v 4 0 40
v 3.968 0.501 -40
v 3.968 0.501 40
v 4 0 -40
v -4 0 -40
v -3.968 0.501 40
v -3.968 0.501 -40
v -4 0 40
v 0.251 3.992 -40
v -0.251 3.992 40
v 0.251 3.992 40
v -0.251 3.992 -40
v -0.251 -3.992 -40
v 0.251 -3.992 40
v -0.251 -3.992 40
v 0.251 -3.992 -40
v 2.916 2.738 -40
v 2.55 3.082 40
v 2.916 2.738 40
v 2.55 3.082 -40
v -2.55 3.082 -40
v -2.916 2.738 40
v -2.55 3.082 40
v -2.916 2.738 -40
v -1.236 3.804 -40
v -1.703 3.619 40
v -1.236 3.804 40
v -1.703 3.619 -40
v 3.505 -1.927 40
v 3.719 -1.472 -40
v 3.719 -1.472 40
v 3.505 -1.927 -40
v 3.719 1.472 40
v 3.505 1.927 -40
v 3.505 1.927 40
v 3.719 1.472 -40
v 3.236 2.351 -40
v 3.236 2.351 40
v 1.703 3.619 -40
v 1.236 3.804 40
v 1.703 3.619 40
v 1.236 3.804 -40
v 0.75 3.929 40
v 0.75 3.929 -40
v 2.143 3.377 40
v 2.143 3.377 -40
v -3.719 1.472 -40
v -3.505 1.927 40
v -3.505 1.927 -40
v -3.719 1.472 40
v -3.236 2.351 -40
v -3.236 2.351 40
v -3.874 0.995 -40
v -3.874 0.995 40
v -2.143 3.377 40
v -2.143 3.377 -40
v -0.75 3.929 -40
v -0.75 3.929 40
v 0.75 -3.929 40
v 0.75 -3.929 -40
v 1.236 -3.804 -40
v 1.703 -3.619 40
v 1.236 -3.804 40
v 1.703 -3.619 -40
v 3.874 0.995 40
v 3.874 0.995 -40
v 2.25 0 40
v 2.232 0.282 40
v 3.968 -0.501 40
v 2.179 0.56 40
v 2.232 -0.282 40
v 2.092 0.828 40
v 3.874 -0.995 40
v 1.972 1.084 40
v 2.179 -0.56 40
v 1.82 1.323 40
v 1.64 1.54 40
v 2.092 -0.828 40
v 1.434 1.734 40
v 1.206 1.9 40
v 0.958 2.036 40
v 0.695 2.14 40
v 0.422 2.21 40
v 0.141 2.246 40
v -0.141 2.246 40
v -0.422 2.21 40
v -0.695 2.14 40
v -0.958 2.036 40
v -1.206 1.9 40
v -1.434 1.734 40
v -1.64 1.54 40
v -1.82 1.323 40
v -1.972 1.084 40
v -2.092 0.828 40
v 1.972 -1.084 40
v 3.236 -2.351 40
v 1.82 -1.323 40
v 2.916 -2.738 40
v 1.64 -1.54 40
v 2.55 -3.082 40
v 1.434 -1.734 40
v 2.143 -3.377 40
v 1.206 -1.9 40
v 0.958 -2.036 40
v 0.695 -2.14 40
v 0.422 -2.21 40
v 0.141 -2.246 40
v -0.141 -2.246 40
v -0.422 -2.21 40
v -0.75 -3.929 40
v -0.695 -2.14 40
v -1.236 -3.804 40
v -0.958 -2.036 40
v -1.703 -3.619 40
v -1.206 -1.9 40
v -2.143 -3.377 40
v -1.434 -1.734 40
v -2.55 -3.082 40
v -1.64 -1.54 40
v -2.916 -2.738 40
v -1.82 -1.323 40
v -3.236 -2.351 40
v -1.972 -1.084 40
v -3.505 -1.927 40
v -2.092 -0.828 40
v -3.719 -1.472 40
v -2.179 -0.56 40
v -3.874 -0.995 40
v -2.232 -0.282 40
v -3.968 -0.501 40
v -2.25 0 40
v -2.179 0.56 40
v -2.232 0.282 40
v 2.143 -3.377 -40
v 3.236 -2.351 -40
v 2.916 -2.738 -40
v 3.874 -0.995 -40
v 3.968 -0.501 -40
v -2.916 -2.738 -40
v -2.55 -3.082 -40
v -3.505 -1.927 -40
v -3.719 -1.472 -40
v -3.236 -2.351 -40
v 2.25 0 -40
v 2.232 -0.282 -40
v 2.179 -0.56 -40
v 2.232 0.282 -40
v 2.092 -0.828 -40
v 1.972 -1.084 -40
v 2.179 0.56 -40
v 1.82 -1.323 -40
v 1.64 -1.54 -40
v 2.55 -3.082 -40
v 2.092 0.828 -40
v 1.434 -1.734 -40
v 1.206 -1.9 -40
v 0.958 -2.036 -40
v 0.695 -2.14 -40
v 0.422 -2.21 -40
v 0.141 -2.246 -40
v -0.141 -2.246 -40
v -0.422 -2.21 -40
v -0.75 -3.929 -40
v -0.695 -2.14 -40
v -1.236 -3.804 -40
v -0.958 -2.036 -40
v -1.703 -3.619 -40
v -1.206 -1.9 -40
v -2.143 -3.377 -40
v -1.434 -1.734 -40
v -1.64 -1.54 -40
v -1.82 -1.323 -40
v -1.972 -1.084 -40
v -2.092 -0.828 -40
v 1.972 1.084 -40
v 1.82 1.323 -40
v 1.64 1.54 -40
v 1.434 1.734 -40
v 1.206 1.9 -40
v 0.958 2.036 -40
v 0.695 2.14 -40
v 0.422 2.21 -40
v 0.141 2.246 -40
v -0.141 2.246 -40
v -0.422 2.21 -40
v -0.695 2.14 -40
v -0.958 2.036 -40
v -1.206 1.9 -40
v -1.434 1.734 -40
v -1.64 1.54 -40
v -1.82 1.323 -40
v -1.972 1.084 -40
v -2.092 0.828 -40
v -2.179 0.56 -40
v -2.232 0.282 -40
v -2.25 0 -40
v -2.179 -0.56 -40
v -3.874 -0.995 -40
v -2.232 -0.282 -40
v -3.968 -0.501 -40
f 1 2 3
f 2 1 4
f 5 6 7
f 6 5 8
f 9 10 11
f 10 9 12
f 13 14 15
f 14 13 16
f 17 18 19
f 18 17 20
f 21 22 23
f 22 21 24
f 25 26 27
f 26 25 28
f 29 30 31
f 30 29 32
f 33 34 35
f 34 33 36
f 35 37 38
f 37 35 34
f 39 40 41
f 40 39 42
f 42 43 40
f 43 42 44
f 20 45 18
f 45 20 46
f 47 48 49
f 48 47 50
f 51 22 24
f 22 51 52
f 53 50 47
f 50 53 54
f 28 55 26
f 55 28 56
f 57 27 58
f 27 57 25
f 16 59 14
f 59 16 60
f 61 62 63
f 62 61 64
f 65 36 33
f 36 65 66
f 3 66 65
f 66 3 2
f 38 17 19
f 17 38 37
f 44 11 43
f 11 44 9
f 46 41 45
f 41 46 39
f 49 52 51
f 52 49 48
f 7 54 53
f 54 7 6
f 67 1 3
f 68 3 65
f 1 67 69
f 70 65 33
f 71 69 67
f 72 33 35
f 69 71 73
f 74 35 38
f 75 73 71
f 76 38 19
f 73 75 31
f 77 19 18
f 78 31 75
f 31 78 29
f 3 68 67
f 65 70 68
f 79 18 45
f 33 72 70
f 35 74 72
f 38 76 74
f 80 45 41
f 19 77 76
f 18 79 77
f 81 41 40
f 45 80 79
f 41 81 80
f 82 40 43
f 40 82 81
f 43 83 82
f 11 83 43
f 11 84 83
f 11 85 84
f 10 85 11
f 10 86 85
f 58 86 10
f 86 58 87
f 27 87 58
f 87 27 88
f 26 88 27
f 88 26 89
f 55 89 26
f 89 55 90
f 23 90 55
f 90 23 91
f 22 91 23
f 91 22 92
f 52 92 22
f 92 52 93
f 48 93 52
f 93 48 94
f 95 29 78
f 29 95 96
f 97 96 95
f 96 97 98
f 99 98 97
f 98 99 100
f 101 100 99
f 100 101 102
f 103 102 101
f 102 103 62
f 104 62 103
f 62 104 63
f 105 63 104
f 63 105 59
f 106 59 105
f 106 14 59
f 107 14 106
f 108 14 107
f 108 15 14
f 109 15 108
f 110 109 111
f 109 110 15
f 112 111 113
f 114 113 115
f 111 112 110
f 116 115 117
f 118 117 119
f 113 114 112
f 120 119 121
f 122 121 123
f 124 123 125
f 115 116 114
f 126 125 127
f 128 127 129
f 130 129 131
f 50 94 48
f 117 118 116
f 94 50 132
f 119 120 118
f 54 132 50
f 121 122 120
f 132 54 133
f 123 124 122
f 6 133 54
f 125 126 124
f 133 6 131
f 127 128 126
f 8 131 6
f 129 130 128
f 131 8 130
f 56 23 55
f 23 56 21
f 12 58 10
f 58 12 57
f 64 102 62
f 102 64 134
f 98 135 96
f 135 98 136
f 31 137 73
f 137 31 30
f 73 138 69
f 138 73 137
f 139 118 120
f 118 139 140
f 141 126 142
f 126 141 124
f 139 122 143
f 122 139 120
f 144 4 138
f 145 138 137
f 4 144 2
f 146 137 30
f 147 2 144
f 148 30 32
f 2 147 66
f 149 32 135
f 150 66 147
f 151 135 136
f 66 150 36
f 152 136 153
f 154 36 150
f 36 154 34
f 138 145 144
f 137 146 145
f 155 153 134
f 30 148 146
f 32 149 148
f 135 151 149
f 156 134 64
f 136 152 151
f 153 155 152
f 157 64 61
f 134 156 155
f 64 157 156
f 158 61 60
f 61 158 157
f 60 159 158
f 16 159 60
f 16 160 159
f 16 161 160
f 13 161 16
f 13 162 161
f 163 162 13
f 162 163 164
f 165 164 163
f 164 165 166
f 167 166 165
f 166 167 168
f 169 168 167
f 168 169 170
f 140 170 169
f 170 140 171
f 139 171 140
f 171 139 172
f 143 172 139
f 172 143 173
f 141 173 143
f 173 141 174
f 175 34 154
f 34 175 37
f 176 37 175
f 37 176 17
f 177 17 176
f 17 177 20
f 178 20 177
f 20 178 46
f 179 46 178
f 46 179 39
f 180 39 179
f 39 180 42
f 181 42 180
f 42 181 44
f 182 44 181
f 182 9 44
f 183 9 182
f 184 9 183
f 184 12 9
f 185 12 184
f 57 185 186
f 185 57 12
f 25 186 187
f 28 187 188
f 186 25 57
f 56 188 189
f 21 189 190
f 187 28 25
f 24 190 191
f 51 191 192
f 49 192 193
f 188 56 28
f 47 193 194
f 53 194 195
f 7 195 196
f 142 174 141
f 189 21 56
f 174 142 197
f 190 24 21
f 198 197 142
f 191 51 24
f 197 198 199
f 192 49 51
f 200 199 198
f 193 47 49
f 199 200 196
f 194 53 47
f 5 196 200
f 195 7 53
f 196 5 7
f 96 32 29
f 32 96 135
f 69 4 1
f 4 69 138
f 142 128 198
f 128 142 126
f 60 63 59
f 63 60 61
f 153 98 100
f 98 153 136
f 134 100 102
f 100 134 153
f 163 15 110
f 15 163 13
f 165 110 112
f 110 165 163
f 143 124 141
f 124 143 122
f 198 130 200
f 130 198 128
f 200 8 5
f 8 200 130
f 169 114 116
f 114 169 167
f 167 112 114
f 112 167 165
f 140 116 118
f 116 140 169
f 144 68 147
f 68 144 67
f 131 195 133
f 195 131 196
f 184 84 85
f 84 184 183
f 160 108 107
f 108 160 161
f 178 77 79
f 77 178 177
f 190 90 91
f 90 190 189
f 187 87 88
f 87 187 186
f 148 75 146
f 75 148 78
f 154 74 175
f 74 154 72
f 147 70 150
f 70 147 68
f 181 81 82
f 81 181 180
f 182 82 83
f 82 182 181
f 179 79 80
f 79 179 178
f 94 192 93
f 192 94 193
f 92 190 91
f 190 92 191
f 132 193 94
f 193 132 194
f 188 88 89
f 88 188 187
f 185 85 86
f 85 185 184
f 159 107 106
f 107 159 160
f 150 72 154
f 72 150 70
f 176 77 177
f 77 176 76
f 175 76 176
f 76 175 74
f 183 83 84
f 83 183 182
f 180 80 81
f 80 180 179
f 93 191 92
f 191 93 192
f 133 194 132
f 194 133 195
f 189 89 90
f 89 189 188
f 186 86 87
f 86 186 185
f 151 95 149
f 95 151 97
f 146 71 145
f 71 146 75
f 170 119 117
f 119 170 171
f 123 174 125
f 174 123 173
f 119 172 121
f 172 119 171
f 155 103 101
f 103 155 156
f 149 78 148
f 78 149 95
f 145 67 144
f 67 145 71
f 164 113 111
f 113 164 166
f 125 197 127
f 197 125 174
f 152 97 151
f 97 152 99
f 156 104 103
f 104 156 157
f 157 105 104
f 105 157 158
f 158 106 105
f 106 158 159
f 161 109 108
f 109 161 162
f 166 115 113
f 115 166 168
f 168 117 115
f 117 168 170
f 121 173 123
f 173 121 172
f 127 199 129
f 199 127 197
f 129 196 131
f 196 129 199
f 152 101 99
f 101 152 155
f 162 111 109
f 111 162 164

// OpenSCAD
$fn = 50;


difference() {
	union() {
		translate(v = [0, 0, -40.0000000000]) {
			cylinder(h = 80, r = 4.0000000000);
		}
	}
	union() {
		translate(v = [0, 0, -100.0000000000]) {
			cylinder(h = 200, r = 2.2500000000);
		}
	}
}
